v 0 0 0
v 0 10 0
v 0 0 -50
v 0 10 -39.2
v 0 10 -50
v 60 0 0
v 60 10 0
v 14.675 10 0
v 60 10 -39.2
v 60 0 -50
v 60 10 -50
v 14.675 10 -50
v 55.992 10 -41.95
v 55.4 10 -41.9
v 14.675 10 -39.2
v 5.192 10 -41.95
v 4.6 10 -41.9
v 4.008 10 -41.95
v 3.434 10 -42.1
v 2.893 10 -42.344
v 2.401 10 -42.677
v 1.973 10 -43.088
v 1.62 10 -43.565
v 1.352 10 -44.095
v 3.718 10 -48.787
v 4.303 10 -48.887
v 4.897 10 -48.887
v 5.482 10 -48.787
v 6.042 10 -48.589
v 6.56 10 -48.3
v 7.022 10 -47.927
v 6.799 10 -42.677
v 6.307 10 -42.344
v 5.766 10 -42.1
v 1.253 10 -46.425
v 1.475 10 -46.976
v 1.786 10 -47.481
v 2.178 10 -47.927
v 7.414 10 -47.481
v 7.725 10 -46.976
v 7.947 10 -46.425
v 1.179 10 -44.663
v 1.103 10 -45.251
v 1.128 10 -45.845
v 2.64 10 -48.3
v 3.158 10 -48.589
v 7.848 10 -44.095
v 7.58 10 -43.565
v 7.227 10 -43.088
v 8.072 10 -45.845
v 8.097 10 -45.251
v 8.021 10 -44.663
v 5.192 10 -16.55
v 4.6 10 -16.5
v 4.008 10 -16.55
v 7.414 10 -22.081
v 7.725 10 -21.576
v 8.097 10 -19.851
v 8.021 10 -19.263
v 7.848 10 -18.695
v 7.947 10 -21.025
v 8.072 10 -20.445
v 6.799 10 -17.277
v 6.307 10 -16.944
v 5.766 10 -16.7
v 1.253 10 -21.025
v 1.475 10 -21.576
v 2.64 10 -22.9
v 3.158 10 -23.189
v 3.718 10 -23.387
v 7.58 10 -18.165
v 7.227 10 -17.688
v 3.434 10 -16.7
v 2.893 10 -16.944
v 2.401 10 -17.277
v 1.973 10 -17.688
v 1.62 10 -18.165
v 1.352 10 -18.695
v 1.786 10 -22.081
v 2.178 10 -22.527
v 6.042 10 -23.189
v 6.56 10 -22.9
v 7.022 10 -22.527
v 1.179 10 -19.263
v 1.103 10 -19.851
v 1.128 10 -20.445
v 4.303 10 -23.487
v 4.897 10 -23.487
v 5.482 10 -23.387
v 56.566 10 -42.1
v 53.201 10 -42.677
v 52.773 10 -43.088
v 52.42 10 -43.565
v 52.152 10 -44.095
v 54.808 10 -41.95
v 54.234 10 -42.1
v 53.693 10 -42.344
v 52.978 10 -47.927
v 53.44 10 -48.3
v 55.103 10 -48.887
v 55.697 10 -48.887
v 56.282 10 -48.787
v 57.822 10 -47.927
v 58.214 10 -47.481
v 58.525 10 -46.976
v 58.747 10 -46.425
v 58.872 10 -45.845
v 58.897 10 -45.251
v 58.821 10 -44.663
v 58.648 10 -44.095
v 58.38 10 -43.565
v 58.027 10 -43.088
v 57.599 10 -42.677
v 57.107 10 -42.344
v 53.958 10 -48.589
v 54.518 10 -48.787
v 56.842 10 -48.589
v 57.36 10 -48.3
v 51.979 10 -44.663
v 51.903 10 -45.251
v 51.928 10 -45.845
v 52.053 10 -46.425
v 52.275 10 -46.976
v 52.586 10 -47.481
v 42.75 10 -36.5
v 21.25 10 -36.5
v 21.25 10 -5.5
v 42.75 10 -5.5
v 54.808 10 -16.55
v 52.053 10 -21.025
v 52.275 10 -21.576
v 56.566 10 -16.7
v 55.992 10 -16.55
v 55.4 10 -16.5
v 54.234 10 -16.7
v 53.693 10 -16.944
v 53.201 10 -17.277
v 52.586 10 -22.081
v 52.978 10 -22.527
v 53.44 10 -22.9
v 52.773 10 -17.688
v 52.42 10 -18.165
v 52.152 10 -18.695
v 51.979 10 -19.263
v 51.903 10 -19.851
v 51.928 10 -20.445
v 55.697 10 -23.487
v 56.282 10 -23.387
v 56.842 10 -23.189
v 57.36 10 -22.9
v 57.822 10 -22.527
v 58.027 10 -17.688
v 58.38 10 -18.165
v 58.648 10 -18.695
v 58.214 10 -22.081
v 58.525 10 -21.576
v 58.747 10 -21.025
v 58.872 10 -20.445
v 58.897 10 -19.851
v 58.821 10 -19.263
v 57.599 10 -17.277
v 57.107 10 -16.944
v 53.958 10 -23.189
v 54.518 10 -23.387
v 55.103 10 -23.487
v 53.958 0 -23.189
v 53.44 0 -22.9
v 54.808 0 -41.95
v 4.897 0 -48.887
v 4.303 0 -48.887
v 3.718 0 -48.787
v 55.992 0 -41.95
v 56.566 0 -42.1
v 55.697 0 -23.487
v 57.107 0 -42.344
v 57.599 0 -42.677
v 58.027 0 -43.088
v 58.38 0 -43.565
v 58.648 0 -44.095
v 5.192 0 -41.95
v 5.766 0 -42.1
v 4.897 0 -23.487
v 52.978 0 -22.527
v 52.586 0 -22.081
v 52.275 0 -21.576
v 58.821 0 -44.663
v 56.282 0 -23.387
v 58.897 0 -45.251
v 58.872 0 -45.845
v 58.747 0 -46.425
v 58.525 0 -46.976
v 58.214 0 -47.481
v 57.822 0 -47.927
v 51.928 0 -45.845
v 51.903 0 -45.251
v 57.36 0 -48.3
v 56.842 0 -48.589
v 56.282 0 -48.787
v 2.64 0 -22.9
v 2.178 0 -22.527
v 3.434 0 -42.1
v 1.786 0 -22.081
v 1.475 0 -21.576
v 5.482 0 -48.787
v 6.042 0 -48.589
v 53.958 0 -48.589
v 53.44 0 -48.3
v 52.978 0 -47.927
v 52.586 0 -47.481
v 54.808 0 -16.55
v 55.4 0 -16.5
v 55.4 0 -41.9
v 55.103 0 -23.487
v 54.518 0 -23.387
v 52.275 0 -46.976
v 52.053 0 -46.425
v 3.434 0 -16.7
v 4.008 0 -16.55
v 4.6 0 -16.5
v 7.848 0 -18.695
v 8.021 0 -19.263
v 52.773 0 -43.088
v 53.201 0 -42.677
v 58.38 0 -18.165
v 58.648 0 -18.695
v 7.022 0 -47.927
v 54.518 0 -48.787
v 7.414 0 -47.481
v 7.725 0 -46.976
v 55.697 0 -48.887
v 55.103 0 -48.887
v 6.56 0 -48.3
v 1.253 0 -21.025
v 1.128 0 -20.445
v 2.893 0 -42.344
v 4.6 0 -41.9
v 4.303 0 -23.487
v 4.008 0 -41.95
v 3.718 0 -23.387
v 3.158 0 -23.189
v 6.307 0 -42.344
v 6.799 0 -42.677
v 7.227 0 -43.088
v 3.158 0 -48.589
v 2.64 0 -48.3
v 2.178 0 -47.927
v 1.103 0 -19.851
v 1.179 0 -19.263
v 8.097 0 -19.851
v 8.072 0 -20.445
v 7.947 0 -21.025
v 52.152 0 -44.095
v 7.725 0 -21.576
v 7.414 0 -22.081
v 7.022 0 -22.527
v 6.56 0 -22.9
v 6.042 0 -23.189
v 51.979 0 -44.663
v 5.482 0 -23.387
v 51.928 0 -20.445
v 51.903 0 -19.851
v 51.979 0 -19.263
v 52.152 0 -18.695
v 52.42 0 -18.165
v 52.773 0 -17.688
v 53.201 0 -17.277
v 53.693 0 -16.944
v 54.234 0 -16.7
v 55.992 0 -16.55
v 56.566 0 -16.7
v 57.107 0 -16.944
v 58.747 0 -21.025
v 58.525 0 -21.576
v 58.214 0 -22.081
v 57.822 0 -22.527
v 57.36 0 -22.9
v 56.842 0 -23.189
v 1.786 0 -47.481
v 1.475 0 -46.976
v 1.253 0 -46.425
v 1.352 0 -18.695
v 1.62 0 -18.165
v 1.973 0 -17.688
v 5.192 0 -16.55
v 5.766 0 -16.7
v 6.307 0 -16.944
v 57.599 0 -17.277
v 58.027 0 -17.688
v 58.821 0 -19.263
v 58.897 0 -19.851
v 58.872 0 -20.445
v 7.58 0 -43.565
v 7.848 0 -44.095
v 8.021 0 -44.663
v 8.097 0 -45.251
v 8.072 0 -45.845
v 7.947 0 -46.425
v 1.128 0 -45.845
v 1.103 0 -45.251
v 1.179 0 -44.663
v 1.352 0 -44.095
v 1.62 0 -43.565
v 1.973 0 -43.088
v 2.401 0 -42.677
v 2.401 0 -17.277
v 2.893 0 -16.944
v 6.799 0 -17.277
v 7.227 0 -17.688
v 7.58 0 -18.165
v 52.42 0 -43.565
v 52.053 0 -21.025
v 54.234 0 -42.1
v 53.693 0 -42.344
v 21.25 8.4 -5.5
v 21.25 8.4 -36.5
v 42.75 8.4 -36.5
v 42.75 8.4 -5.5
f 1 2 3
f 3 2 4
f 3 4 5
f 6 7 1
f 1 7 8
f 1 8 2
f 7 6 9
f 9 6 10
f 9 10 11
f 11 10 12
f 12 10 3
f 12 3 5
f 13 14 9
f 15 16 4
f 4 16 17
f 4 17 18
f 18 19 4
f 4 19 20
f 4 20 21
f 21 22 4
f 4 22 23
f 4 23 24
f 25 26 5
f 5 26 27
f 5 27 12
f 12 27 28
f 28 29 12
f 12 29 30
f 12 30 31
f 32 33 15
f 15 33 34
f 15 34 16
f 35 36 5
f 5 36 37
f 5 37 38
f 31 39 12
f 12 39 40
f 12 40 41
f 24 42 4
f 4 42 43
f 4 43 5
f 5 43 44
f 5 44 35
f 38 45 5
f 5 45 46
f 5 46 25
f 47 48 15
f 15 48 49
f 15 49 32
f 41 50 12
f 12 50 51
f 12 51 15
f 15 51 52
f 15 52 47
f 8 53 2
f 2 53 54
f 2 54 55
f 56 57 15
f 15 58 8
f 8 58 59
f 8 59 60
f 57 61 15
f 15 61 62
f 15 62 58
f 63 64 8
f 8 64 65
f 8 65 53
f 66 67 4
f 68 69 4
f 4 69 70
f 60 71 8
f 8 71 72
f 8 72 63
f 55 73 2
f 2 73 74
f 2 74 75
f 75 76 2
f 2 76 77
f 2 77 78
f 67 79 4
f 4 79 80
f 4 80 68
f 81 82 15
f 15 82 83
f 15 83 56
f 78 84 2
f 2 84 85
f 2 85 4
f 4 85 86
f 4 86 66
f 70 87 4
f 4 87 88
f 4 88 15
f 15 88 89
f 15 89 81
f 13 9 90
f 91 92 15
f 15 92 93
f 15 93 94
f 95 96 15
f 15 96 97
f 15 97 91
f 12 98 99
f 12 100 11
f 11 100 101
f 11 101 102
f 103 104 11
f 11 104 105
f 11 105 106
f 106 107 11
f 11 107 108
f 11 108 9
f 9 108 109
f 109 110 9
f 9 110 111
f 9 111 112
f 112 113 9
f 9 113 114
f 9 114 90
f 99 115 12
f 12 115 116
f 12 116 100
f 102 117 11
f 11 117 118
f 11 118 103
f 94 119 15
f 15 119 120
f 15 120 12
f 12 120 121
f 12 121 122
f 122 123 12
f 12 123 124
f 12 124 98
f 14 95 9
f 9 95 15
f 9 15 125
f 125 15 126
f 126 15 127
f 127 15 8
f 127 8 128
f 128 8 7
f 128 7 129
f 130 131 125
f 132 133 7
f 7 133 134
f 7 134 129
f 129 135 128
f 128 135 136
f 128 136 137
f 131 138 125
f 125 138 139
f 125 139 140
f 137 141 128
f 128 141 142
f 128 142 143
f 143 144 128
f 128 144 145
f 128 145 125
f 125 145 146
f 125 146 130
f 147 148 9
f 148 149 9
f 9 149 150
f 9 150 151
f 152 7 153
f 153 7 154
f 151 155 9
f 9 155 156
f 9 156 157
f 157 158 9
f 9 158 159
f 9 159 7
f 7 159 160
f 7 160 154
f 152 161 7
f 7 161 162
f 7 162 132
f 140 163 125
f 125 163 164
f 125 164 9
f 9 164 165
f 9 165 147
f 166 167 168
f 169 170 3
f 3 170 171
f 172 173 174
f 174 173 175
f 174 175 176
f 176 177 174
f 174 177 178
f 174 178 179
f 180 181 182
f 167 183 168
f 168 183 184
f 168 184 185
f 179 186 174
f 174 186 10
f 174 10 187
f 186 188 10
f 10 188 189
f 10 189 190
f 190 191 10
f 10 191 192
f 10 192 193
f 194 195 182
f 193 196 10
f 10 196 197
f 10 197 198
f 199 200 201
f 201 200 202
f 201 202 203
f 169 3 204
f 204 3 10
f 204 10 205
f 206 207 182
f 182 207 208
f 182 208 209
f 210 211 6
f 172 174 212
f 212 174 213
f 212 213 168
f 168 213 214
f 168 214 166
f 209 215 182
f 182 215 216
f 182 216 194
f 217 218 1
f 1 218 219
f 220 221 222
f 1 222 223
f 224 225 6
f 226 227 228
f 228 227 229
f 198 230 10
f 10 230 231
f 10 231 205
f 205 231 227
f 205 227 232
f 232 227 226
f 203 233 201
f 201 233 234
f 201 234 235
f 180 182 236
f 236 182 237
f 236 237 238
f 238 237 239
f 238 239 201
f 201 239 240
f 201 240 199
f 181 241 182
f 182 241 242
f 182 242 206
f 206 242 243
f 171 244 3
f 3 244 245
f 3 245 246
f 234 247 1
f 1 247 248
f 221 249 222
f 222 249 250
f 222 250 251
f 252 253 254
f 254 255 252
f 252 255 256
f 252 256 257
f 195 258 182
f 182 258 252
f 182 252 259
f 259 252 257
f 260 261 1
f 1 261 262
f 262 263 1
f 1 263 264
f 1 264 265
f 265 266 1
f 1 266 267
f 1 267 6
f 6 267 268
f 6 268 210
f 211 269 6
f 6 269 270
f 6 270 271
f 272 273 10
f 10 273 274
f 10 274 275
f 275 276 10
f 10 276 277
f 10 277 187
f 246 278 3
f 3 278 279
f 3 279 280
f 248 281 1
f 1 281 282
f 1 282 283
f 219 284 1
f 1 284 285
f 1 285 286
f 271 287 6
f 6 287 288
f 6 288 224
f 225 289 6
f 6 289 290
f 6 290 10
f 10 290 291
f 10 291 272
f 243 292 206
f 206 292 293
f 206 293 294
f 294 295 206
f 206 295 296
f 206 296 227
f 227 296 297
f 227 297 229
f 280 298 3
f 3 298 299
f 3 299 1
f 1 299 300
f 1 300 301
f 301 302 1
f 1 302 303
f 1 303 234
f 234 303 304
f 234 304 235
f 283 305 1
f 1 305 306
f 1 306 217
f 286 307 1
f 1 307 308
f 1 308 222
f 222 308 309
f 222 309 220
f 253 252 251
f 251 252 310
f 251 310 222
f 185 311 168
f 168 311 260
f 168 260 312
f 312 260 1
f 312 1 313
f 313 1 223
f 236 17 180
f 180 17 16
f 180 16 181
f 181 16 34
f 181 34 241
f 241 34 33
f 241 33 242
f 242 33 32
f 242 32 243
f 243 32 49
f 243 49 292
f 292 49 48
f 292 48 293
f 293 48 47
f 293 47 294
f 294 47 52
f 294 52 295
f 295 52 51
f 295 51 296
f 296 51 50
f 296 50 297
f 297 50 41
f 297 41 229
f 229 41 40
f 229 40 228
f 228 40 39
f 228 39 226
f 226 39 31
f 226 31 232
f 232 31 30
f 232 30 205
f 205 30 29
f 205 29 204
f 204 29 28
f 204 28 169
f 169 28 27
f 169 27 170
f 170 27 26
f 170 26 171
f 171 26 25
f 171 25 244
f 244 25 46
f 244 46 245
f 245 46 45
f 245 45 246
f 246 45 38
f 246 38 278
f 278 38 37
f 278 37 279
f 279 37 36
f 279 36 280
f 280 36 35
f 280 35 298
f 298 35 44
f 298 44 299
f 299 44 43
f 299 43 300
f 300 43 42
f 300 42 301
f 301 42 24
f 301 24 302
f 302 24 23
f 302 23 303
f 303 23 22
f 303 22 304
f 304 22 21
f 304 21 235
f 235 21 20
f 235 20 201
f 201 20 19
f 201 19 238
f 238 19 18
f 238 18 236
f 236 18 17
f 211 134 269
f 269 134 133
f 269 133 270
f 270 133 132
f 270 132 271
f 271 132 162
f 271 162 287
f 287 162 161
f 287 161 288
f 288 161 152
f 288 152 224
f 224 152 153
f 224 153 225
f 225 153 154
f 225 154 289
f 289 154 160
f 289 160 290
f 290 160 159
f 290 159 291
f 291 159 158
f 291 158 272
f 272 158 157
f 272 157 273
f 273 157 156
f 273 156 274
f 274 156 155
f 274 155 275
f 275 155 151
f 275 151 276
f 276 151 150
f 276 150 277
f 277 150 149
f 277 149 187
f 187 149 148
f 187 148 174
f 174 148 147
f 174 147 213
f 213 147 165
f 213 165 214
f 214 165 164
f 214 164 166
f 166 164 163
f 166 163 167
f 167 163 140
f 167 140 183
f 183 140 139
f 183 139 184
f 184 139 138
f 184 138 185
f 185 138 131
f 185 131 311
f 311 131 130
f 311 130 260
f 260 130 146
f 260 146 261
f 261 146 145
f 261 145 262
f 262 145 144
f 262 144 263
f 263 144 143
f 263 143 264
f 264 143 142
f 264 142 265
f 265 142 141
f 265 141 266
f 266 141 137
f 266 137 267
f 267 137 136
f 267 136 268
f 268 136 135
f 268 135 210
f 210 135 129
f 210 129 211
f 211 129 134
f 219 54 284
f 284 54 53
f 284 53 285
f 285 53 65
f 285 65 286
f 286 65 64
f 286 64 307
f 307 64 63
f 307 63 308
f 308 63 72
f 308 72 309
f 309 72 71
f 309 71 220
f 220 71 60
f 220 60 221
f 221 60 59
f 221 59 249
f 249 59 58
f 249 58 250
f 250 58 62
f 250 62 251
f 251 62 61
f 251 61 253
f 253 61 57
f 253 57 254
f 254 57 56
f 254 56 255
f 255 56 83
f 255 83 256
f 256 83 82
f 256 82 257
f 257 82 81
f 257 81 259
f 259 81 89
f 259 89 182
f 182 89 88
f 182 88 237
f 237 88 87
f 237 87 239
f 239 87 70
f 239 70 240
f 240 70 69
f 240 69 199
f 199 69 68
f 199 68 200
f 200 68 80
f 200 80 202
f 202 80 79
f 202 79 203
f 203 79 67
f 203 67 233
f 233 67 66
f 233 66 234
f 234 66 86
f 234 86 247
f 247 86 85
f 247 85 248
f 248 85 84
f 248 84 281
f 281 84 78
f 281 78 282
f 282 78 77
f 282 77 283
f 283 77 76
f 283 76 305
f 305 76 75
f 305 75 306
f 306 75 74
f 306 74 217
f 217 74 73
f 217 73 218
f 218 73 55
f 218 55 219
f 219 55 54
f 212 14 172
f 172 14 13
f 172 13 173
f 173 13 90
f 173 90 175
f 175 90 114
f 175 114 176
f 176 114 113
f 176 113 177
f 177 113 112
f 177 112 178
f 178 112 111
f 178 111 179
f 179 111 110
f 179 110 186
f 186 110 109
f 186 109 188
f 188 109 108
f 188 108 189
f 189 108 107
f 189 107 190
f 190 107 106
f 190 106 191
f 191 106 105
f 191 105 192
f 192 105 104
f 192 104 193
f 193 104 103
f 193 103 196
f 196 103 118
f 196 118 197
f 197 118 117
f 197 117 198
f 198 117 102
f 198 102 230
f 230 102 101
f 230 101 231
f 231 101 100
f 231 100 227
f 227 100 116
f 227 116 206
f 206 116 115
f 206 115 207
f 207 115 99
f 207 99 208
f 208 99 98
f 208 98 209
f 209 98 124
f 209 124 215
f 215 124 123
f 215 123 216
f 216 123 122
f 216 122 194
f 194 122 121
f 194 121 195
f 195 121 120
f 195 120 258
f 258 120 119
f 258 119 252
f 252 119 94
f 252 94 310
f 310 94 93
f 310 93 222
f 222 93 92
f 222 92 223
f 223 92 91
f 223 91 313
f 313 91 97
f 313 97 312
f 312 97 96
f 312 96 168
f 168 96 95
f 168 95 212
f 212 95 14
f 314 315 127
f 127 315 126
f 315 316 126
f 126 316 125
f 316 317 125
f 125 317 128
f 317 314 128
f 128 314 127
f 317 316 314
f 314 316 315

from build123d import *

# Parameters (mm, degrees)
SKETCH2_W           = 60
SKETCH2_H           = 50
BOSS_EXTRUDE1_DEPTH = 10
SKETCH1_R           = 3.5
CUT_EXTRUDE1_DEPTH  = 10
SKETCH3_W           = 21.5
SKETCH3_H           = 31
CUT_EXTRUDE2_DEPTH  = 1.6


with BuildPart() as part:
    # Sketch2 → Boss-Extrude1 (new body)
    with BuildSketch(Plane(origin=(0, 0, 0), x_dir=(1, 0, 0), z_dir=(0, 1, 0))):
        with Locations((30, 25)):
            Rectangle(SKETCH2_W, SKETCH2_H)
    extrude(amount=BOSS_EXTRUDE1_DEPTH)

    # Sketch1 → Cut-Extrude1 (cut)
    with BuildSketch(Plane(origin=(0, 10, 0), x_dir=(1, 0, 0), z_dir=(0, 1, 0))):
        with BuildLine():
            Line((4.6, 48.9), (4.6, 45.4))
            Line((4.6, 45.4), (1.1, 45.4))
            ThreePointArc((1.1, 45.4), (4.6, 41.9), (8.1, 45.4))
            ThreePointArc((8.1, 45.4), (7.074873734, 47.874873734), (4.6, 48.9))
        make_face()
        with BuildLine():
            Line((1.1, 45.4), (4.6, 45.4))
            Line((4.6, 45.4), (4.6, 48.9))
            ThreePointArc((4.6, 48.9), (2.125126266, 47.874873734), (1.1, 45.4))
        make_face()
        with Locations((55.4, 45.4)):
            Circle(SKETCH1_R)
        with Locations((4.6, 20)):
            Circle(SKETCH1_R)
        with Locations((55.4, 20)):
            Circle(SKETCH1_R)
    extrude(amount=-CUT_EXTRUDE1_DEPTH, mode=Mode.SUBTRACT)

    # Sketch3 → Cut-Extrude2 (cut)
    with BuildSketch(Plane(origin=(0, 10, 0), x_dir=(1, 0, 0), z_dir=(0, 1, 0))):
        with Locations((32, 21)):
            Rectangle(SKETCH3_W, SKETCH3_H)
    extrude(amount=-CUT_EXTRUDE2_DEPTH, mode=Mode.SUBTRACT)


solid = part.part
